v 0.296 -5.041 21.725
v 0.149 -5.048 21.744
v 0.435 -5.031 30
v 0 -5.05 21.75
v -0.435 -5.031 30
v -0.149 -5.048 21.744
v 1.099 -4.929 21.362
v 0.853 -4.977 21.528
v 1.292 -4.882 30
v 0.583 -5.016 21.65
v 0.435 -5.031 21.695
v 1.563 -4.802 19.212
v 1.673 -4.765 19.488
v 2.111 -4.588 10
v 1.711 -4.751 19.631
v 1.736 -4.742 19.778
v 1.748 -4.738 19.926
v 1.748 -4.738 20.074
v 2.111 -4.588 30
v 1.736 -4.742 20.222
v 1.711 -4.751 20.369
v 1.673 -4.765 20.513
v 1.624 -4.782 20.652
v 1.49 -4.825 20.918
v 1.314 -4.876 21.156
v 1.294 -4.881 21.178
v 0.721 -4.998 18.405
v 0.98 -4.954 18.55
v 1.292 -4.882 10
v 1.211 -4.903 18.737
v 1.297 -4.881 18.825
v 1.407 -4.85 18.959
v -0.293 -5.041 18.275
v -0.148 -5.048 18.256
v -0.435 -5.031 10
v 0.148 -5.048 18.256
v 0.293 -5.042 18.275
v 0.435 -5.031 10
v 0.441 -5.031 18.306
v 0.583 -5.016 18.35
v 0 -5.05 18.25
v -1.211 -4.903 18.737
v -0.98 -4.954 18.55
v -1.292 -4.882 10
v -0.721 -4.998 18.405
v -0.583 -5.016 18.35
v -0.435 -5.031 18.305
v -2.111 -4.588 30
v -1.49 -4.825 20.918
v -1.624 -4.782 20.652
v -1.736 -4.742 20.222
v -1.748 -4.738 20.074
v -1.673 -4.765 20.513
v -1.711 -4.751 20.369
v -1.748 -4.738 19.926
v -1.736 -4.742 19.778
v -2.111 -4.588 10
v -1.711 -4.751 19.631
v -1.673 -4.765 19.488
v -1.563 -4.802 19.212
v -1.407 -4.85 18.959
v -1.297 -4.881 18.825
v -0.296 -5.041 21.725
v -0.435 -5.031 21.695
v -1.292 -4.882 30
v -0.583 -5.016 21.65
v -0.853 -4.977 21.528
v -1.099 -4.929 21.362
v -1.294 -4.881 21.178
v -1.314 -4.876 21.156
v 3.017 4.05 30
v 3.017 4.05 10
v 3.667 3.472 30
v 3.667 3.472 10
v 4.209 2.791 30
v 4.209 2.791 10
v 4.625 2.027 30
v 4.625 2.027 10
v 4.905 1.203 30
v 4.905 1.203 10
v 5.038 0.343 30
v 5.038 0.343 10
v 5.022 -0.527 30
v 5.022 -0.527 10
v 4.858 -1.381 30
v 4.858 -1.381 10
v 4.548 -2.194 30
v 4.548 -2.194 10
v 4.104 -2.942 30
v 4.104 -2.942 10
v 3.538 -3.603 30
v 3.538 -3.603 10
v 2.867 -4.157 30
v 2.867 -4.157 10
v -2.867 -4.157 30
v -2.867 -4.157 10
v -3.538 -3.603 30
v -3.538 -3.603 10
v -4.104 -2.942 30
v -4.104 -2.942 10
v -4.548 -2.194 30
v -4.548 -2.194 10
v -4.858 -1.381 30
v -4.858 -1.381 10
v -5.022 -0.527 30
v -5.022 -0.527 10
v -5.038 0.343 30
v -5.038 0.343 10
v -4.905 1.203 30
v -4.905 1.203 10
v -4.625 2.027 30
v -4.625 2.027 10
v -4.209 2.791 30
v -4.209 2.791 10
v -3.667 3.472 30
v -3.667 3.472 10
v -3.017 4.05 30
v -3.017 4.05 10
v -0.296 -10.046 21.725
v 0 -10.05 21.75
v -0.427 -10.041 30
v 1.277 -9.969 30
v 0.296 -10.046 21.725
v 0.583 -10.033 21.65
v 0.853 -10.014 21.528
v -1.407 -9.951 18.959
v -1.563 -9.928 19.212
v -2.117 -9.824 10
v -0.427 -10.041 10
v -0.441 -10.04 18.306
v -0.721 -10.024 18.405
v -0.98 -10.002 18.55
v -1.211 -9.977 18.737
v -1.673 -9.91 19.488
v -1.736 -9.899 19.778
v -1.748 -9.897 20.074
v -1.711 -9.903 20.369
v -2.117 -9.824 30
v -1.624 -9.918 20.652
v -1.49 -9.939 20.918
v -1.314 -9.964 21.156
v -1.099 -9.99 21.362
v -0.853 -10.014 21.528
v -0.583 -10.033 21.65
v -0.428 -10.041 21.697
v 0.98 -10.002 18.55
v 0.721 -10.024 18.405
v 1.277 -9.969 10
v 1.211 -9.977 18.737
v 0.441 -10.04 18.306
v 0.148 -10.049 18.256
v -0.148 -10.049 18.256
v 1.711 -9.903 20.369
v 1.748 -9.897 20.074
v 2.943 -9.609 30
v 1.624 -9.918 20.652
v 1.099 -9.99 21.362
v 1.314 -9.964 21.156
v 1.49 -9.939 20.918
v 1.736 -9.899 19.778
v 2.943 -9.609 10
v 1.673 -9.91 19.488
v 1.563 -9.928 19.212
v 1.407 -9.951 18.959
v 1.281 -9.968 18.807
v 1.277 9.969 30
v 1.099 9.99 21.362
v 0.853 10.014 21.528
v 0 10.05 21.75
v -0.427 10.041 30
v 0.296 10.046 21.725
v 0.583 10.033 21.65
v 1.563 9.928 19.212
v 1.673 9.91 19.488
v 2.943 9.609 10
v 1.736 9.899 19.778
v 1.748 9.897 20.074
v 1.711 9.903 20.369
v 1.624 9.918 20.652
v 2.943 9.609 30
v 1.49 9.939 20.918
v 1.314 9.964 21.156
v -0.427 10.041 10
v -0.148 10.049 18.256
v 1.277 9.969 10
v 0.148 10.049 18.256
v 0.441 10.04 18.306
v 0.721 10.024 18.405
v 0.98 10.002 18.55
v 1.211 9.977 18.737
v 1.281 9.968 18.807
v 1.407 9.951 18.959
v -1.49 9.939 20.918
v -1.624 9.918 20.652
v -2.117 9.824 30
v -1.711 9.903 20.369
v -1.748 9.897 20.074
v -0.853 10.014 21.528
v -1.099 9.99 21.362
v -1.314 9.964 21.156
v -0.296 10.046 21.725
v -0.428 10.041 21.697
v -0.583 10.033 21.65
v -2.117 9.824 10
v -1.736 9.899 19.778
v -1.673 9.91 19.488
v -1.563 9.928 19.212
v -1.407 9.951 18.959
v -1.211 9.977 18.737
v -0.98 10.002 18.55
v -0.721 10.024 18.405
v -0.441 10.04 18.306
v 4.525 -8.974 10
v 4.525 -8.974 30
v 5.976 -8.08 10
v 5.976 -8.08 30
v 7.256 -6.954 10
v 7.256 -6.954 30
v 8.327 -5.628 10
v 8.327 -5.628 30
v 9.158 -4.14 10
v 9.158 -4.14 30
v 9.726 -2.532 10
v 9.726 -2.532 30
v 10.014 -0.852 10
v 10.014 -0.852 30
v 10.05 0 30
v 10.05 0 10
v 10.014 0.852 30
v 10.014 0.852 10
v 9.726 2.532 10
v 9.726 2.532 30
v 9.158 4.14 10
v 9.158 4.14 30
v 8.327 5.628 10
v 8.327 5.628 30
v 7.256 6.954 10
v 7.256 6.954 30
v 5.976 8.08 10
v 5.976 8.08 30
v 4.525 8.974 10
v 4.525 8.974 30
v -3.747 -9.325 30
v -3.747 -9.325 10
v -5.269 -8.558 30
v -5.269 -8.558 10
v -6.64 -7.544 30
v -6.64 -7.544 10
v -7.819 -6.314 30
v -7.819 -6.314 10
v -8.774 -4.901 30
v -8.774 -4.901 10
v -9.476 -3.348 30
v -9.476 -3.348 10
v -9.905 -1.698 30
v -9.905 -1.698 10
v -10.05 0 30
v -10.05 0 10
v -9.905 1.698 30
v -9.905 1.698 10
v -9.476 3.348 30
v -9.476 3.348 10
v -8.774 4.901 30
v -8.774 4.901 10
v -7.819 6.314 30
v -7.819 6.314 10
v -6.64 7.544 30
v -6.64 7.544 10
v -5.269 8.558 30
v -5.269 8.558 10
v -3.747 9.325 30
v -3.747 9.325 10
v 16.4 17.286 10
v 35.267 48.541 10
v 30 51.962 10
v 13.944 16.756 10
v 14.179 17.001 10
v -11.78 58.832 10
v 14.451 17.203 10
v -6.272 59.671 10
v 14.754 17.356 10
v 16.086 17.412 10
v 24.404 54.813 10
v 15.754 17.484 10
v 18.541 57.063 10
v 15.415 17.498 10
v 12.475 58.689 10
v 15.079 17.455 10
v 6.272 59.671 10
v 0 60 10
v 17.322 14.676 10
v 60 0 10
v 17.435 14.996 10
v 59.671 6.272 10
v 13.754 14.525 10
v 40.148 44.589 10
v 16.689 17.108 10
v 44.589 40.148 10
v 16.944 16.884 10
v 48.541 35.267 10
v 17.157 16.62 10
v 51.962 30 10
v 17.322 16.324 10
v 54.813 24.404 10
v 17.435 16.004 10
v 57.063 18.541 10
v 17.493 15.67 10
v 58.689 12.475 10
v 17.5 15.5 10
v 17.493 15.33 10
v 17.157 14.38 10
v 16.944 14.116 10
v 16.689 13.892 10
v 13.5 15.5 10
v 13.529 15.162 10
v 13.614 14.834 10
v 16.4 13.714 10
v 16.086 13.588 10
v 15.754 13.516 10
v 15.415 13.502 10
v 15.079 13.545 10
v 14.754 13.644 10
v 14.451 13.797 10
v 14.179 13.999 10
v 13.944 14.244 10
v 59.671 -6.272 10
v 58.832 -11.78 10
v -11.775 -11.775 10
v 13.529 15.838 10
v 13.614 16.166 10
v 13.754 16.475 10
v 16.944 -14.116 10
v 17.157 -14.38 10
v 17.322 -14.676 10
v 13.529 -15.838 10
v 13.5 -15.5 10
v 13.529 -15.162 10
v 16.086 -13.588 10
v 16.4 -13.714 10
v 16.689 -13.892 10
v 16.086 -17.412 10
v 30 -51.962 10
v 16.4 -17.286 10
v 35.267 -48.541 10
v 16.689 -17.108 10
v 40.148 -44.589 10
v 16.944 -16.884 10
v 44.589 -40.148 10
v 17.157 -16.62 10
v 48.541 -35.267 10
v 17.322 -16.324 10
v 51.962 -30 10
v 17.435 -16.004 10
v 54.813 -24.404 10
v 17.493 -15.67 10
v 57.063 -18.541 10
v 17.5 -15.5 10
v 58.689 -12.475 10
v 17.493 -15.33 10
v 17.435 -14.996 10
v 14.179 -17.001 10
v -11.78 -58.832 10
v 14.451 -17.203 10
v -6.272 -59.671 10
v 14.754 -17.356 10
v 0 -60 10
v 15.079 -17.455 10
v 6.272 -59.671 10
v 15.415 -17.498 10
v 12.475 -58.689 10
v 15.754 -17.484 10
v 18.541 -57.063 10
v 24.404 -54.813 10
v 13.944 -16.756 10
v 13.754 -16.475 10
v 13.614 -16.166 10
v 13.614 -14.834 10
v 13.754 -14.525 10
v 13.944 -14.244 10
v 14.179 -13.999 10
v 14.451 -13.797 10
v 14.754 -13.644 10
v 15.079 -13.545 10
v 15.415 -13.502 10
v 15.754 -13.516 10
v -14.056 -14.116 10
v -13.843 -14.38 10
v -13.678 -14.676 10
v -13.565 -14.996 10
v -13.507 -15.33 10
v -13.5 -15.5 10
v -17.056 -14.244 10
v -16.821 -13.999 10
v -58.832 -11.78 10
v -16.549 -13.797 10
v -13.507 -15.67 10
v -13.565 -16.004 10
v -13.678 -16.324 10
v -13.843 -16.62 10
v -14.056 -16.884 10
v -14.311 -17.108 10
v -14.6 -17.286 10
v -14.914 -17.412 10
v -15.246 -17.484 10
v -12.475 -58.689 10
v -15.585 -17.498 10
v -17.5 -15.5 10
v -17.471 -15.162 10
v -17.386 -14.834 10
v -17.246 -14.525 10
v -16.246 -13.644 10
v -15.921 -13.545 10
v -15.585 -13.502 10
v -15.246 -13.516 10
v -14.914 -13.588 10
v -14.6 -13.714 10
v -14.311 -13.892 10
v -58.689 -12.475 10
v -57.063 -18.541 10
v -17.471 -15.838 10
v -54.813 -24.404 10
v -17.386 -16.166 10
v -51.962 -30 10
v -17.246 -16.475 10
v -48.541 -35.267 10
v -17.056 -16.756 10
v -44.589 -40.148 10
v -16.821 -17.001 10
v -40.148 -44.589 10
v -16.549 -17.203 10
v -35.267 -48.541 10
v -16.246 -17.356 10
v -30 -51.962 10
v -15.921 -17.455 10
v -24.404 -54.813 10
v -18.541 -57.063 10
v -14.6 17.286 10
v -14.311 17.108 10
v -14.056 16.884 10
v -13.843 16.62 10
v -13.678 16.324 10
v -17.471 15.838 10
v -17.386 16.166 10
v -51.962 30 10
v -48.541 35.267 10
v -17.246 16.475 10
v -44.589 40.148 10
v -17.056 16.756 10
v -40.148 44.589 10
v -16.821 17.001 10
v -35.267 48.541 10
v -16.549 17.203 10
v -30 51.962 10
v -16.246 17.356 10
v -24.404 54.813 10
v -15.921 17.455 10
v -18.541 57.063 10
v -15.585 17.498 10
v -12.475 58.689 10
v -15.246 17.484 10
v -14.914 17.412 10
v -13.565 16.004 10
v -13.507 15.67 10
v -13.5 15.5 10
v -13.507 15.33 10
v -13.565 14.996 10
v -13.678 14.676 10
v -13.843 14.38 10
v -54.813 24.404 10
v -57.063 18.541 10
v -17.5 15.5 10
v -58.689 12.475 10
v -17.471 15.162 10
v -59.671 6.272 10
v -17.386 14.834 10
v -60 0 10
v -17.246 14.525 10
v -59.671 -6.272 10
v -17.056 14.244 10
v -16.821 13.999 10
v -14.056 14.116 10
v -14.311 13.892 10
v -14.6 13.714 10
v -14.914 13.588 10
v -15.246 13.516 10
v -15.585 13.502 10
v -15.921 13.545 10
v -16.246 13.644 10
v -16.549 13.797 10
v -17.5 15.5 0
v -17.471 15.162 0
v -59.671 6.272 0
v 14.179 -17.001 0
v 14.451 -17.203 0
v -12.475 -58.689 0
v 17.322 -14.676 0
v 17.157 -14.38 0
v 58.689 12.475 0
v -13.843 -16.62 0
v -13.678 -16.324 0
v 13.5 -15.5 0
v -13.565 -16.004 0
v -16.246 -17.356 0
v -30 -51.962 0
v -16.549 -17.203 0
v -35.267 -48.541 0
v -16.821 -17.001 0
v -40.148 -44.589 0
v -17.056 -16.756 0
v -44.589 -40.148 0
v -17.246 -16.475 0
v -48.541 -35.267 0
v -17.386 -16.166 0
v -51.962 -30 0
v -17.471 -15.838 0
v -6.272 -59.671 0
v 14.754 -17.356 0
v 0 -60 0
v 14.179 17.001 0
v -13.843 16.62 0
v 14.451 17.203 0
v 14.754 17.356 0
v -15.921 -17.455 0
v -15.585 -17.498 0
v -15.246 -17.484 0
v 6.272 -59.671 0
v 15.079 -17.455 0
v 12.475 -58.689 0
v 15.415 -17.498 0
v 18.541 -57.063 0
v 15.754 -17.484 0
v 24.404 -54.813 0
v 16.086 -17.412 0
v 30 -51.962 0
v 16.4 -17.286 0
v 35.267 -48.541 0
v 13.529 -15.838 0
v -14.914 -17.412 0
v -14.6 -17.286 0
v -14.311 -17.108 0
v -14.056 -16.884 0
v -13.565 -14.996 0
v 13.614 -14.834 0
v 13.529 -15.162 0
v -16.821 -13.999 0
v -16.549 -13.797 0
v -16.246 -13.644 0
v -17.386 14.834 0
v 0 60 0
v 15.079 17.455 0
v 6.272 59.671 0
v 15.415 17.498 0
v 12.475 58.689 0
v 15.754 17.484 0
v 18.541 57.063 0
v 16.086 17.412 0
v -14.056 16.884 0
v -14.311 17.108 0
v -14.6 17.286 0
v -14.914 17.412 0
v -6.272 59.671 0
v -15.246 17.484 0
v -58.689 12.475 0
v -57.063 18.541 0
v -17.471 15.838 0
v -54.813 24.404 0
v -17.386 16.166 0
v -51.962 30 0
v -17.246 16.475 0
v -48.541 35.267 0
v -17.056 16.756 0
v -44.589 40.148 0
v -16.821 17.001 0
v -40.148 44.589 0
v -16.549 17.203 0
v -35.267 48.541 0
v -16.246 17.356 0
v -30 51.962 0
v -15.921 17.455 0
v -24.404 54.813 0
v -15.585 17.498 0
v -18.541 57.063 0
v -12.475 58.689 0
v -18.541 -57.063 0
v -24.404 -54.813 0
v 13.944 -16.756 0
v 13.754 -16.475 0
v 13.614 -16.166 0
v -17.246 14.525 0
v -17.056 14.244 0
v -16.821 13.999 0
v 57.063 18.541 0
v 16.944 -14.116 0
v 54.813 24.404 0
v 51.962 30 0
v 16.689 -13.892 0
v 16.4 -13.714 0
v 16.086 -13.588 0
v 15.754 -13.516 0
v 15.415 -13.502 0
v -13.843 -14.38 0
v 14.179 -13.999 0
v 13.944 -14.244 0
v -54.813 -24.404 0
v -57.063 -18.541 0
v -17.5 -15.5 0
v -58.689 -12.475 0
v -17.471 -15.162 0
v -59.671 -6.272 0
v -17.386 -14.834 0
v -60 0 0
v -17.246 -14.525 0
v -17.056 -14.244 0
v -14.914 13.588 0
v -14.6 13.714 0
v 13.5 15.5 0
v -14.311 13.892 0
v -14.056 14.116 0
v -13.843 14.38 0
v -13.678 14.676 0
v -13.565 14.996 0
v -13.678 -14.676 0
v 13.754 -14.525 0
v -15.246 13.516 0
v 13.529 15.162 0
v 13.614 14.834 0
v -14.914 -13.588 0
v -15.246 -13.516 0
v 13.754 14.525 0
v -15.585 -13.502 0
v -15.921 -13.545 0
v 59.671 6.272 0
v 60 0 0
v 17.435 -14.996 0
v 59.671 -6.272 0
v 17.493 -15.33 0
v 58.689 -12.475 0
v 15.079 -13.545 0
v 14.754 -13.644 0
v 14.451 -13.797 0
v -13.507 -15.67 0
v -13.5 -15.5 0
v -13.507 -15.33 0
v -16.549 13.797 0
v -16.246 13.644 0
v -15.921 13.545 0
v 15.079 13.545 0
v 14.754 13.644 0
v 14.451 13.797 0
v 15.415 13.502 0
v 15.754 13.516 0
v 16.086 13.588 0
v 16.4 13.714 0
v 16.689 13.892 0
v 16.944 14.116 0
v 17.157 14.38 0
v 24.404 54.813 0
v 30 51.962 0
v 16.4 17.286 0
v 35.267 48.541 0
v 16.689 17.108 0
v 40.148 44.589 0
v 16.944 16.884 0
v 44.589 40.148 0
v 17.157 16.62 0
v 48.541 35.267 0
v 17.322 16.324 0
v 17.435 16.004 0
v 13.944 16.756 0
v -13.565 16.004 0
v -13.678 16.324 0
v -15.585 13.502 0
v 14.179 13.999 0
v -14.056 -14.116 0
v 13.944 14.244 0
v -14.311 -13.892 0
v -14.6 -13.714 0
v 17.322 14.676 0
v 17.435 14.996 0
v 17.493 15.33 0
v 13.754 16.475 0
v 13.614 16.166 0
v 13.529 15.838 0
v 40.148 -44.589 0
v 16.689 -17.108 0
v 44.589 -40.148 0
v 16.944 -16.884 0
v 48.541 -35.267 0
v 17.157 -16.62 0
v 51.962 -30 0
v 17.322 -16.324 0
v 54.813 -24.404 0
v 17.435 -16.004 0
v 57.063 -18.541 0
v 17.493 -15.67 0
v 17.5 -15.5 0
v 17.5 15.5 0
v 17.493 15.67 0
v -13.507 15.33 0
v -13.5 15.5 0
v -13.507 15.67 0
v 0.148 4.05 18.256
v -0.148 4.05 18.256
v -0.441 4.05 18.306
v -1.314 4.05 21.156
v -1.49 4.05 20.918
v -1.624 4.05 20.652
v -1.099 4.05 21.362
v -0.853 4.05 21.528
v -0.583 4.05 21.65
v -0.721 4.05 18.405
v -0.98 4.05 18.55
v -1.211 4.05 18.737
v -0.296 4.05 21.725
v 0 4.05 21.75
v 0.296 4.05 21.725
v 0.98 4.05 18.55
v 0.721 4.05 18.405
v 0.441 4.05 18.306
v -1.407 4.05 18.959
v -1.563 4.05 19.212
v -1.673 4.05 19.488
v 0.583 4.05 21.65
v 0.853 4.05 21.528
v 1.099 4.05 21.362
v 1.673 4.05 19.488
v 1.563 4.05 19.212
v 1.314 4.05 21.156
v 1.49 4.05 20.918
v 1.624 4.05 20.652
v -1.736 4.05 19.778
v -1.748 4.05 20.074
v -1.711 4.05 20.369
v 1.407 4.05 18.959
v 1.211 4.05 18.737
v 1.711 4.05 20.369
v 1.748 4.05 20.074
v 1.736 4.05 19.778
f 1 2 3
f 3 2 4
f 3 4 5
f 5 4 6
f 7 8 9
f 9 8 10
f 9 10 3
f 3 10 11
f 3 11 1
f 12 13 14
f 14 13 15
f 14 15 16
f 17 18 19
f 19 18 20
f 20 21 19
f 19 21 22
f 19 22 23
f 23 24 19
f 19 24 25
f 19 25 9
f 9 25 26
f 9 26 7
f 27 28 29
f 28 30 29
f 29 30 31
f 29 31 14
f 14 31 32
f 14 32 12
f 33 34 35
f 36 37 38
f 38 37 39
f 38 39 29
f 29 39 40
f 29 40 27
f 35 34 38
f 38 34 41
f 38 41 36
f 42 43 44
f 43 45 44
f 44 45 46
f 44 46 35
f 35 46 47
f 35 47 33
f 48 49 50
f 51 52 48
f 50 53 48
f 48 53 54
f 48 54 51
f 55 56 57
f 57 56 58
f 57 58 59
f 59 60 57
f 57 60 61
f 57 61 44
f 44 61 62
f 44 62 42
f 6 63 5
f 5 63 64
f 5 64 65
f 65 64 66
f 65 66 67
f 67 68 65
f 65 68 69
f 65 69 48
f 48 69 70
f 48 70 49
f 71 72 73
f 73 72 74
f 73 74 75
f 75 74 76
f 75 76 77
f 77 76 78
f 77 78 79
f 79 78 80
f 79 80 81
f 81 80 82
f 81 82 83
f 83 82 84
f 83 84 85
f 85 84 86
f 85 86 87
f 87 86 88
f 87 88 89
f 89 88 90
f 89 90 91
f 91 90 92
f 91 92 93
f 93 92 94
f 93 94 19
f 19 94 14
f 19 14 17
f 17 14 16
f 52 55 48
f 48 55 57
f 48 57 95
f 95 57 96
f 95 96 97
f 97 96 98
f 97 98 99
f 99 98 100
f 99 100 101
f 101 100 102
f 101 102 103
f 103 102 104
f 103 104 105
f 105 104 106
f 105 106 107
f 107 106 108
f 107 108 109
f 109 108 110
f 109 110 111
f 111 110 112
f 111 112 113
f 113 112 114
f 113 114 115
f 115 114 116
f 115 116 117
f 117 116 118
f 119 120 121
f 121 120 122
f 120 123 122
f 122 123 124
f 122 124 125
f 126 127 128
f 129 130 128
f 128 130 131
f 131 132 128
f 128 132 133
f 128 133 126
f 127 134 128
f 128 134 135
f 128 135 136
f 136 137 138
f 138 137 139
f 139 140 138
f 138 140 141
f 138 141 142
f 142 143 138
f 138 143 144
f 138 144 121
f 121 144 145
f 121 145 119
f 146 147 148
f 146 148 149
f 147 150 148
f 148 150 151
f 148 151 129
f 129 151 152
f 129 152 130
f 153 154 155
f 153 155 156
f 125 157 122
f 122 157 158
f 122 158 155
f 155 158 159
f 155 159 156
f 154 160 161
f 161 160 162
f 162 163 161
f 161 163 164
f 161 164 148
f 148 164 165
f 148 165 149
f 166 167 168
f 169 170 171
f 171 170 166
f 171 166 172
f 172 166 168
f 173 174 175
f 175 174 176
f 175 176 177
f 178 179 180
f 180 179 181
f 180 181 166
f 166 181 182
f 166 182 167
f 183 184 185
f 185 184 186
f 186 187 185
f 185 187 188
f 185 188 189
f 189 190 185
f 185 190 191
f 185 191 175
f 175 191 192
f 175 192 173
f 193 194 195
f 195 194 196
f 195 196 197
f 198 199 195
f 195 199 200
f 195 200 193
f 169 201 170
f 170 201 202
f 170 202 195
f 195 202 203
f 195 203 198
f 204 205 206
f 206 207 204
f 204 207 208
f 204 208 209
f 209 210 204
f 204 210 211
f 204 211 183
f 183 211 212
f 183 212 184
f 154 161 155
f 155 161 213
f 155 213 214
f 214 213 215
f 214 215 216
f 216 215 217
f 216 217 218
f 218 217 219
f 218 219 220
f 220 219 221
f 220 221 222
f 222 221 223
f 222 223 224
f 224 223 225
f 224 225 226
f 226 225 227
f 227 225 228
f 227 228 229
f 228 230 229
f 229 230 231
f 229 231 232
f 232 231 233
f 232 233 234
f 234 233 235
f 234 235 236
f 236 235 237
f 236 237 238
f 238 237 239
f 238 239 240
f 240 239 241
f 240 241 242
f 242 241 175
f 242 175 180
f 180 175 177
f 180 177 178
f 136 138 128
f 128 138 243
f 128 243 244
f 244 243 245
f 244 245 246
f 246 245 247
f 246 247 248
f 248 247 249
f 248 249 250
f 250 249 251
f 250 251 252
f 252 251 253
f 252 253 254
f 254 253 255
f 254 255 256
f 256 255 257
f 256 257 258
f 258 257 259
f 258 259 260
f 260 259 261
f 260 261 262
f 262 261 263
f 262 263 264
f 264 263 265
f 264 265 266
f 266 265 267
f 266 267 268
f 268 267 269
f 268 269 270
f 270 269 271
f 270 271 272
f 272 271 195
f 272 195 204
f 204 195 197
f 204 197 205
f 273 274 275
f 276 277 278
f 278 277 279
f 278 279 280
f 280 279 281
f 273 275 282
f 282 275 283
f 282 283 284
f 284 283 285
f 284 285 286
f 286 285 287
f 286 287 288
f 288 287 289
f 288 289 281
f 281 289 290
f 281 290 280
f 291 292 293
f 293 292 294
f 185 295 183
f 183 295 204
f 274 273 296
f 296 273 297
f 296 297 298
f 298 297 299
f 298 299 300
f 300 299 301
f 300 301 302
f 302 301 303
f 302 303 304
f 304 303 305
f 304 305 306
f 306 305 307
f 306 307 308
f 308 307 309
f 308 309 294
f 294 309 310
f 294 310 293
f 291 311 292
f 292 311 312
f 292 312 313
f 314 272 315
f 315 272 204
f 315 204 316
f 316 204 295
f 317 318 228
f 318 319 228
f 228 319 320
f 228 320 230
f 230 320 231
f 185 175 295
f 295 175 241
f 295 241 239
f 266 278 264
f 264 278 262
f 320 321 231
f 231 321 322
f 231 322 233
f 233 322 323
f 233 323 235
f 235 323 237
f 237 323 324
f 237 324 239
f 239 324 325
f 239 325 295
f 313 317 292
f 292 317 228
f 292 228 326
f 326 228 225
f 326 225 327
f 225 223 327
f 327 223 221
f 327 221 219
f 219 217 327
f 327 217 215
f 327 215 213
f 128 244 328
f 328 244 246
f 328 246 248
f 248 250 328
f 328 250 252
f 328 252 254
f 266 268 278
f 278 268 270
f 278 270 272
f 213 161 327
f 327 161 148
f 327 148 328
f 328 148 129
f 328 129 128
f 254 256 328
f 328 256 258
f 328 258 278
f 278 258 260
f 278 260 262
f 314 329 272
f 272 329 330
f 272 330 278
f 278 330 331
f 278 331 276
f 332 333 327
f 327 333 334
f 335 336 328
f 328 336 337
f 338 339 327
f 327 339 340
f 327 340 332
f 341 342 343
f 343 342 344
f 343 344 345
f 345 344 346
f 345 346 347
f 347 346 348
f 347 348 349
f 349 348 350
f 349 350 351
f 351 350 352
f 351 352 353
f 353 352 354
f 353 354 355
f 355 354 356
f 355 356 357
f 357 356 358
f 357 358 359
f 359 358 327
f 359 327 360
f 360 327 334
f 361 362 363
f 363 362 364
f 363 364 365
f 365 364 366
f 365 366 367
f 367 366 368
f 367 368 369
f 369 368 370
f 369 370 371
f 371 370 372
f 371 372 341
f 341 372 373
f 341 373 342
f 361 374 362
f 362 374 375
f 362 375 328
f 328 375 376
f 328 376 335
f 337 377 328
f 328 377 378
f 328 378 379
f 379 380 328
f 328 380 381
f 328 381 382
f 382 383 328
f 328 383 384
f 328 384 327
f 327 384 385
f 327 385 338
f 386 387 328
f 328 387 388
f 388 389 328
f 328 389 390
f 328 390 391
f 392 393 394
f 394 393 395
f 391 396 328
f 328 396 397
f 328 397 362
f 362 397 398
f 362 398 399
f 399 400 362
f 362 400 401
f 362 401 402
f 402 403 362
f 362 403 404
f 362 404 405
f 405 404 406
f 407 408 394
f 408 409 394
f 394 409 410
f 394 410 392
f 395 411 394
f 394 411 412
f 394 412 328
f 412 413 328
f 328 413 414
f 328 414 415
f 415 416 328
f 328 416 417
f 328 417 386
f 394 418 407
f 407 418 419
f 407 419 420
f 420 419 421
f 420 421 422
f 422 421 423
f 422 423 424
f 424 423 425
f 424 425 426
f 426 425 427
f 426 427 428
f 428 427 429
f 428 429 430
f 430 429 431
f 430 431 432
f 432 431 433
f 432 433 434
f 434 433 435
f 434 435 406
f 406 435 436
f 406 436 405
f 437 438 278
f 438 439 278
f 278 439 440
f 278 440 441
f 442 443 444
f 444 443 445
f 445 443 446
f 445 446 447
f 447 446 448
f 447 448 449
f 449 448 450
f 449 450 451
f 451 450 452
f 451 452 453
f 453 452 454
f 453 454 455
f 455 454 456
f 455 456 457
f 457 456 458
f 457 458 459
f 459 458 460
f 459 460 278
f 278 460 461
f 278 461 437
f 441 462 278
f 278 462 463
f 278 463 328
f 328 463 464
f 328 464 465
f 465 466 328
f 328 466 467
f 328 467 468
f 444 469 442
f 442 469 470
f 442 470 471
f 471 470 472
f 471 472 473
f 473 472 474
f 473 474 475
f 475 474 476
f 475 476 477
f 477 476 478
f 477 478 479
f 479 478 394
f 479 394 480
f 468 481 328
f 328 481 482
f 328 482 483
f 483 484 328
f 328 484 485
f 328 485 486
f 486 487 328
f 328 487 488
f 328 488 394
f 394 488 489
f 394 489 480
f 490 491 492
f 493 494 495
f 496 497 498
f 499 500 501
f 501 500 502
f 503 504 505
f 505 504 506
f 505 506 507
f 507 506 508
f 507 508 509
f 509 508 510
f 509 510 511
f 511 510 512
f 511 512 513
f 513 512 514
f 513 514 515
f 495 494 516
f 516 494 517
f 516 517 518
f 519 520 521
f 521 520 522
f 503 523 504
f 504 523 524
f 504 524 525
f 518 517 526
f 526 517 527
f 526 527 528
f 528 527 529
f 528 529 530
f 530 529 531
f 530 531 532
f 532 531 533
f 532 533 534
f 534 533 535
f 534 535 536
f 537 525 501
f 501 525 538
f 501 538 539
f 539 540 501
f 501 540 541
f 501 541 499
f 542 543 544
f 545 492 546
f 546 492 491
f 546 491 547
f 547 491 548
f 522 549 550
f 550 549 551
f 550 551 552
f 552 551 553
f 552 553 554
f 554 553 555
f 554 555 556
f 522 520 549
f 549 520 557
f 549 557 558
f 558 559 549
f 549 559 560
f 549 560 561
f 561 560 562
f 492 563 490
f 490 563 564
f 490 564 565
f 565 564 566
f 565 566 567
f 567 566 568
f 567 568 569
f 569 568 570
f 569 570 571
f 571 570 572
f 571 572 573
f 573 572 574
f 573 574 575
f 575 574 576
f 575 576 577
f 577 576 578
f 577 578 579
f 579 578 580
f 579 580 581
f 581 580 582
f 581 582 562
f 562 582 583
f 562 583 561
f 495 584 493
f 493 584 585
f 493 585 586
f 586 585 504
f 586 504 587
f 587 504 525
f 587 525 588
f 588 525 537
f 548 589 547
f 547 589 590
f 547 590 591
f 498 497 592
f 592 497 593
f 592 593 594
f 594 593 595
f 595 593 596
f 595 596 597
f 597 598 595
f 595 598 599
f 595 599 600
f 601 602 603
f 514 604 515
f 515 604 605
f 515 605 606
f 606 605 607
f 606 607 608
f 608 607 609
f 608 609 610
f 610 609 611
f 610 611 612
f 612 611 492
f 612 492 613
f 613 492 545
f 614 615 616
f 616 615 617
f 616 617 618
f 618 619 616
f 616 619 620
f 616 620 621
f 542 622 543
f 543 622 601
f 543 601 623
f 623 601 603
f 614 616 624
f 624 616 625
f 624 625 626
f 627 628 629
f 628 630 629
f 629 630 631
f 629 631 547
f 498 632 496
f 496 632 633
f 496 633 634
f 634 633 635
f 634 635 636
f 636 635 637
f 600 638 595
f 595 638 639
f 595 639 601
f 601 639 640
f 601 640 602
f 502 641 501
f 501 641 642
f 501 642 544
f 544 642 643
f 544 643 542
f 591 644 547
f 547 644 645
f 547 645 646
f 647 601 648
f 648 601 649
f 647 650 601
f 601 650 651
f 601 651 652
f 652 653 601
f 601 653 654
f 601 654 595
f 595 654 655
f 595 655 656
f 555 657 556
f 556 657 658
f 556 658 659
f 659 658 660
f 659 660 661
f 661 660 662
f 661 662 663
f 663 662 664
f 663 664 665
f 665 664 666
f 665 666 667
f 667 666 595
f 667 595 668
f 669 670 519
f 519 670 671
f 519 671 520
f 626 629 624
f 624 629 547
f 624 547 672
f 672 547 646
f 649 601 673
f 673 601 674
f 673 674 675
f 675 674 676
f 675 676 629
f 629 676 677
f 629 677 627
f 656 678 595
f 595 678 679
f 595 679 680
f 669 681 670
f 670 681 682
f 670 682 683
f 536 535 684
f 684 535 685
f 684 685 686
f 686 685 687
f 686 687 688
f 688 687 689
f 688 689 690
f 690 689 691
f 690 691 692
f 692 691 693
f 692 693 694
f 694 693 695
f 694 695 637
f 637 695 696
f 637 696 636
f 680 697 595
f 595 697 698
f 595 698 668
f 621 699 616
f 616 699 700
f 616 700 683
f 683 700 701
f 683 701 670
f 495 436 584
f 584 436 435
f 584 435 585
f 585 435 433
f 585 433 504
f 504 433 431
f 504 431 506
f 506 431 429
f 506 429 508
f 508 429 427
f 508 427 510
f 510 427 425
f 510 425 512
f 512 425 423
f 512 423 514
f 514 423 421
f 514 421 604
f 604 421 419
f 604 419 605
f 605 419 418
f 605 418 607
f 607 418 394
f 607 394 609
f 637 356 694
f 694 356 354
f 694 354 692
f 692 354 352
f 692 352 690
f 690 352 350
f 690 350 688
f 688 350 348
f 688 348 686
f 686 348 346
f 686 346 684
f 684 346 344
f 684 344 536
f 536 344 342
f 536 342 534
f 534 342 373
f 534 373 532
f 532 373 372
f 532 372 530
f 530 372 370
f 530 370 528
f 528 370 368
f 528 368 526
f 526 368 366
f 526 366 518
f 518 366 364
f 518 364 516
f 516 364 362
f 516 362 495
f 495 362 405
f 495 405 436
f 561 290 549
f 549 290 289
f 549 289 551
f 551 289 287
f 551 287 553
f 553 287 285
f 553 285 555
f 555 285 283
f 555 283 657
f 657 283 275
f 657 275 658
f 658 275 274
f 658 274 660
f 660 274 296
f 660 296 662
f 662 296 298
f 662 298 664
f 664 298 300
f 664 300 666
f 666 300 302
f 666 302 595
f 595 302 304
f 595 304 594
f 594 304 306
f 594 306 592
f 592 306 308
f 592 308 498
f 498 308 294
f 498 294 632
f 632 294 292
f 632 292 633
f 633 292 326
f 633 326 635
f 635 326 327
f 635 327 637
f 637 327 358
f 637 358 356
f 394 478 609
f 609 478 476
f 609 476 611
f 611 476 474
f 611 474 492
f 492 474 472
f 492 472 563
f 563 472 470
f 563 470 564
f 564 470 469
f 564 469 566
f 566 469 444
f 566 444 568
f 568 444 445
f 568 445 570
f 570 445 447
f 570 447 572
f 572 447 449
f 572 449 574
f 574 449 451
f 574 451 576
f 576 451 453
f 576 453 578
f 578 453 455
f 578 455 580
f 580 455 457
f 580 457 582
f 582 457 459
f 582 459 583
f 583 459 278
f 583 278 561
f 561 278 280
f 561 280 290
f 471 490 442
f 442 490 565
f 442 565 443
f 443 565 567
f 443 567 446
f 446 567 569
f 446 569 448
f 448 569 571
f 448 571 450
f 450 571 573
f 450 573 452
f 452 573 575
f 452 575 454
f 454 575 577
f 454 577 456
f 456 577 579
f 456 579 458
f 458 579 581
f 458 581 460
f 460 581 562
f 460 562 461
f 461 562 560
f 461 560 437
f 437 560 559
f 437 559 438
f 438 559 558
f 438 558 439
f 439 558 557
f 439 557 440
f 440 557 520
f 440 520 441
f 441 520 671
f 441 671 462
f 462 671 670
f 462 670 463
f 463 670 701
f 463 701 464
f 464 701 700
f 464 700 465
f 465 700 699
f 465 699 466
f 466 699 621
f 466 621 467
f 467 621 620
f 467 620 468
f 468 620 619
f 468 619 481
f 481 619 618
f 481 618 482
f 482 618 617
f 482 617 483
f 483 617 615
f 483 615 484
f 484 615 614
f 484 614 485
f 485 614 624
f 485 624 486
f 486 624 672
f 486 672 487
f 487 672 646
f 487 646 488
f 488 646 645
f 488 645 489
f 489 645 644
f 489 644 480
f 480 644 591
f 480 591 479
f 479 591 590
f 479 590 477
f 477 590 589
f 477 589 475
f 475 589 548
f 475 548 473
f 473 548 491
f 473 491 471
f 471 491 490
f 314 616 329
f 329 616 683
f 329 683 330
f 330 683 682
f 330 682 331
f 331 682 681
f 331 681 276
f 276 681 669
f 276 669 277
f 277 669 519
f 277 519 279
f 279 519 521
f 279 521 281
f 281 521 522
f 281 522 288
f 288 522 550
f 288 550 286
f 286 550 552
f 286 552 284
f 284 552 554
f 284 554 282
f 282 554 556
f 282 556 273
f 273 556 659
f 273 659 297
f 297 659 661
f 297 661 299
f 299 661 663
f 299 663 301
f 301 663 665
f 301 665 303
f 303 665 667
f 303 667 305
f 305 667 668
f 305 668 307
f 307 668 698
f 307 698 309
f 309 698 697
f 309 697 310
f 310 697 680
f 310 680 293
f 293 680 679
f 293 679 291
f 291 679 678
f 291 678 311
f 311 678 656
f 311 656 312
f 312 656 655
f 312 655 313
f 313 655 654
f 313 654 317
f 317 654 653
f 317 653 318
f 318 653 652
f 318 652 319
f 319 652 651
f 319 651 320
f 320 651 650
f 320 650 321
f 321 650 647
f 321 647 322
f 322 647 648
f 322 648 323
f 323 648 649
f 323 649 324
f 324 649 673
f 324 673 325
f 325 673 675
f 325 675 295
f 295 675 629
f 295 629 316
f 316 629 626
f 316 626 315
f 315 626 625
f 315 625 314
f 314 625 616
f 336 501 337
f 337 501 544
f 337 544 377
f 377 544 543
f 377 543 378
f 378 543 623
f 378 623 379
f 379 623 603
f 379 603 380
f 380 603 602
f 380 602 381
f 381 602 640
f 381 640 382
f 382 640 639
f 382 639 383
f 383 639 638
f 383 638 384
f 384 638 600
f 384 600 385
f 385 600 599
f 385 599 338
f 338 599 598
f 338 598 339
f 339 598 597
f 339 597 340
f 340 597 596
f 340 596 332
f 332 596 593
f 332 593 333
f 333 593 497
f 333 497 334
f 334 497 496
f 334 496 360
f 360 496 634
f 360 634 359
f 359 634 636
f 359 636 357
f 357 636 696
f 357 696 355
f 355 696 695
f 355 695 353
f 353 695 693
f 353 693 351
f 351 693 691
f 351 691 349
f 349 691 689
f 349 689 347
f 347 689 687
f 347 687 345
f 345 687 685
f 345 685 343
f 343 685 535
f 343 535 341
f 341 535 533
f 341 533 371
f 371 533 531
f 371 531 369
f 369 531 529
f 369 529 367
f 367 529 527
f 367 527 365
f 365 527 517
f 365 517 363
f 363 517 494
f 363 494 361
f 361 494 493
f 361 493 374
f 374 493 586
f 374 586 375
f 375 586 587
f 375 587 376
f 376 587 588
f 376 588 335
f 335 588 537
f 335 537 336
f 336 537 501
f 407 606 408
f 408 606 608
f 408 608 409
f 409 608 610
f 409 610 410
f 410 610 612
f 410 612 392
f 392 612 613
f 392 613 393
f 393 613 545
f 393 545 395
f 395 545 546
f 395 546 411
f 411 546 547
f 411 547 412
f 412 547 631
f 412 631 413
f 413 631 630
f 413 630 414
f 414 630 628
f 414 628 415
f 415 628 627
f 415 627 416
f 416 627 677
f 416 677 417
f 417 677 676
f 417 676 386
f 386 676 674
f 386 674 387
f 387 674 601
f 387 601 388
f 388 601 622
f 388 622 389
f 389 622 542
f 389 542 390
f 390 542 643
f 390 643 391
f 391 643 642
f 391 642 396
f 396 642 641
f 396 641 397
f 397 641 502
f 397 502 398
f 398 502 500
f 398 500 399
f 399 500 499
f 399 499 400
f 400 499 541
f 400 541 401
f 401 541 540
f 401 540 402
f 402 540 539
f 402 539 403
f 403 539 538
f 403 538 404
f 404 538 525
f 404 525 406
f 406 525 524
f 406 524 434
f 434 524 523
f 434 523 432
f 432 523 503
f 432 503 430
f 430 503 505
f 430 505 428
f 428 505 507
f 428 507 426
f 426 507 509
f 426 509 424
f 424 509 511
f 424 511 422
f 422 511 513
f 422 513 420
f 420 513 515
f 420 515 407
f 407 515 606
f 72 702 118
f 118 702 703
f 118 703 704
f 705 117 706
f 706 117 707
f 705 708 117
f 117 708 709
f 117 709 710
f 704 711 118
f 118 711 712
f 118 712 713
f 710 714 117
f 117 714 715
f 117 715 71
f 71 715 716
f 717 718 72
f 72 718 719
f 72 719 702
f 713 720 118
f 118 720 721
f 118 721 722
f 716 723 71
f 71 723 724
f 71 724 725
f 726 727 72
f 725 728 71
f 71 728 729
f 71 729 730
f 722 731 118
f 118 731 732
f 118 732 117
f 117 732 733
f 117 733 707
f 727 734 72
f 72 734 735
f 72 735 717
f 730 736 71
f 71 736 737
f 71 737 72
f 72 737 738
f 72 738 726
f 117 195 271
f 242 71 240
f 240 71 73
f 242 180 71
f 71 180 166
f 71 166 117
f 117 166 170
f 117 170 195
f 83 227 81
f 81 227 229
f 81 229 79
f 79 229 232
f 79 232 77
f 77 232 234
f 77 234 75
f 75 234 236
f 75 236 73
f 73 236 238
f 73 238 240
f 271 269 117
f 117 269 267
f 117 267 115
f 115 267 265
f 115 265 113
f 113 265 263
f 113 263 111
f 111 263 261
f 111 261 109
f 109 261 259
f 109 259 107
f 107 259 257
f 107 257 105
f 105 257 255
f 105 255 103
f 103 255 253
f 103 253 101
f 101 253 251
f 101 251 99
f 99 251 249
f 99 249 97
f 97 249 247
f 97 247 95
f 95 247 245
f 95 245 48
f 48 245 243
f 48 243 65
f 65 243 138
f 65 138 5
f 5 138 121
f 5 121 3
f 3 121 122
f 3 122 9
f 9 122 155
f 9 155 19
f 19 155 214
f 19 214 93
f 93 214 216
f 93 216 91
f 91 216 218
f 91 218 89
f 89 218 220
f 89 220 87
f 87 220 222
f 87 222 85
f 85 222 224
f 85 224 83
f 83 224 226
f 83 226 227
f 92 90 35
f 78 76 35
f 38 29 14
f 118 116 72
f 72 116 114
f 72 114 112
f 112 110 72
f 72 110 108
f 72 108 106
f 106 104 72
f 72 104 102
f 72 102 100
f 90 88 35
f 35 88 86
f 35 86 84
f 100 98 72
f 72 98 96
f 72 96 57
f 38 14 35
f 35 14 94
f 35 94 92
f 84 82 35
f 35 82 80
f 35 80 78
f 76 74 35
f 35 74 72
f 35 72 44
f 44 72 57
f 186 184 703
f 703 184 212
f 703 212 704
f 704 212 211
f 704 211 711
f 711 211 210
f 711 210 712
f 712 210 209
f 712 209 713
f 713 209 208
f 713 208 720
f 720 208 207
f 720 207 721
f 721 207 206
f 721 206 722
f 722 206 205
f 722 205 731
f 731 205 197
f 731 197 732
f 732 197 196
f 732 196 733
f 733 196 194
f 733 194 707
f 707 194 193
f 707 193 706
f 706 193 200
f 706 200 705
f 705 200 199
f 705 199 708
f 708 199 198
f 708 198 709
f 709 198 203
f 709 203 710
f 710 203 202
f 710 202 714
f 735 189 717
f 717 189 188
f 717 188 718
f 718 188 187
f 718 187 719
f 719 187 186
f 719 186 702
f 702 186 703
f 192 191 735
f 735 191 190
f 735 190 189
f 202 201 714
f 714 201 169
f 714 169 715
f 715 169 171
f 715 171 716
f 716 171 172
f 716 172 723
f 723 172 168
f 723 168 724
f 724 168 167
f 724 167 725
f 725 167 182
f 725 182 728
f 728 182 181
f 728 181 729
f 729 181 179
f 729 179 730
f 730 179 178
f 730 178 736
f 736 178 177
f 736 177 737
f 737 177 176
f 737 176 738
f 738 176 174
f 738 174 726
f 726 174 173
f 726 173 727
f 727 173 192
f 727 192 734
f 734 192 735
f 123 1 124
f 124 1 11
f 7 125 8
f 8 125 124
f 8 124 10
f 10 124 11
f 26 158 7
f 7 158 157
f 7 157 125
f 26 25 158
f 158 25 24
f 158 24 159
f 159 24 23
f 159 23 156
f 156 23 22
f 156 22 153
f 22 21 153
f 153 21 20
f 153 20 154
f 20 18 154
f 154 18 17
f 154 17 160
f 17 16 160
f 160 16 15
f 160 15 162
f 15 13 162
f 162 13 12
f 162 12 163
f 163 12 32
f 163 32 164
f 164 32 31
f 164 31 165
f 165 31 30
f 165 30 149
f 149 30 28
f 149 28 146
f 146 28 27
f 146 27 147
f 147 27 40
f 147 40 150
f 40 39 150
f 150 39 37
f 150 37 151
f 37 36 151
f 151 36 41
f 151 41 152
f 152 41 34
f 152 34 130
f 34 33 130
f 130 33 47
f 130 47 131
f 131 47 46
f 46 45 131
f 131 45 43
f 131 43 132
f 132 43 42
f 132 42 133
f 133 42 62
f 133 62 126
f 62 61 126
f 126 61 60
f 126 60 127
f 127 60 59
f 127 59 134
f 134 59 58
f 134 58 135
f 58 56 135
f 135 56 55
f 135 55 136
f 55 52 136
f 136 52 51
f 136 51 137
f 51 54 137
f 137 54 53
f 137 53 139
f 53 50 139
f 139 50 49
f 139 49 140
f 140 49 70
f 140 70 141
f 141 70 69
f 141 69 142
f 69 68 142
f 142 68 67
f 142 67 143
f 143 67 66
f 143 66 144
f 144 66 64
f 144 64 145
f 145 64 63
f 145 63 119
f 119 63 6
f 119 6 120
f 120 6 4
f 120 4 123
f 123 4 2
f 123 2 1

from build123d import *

# Parameters (mm, degrees)
SKETCH1_R               = 60
SKETCH1_R_2             = 2
BOSS_EXTRUDE1_DEPTH     = 10
SKETCH2_R               = 10.05
BOSS_EXTRUDE2_DEPTH     = 20
CUT_EXTRUDE1_DEPTH      = 20
CUT_EXTRUDE1_DEPTH_BACK = 20
SKETCH3_R               = 1.75


with BuildPart() as part:
    # Sketch1 → Boss-Extrude1 (new body)
    with BuildSketch(Plane.XY):
        Circle(SKETCH1_R)
        with Locations((-15.5, 15.5)):
            Circle(SKETCH1_R_2, mode=Mode.SUBTRACT)
        with Locations((15.5, 15.5)):
            Circle(SKETCH1_R_2, mode=Mode.SUBTRACT)
        with Locations((15.5, -15.5)):
            Circle(SKETCH1_R_2, mode=Mode.SUBTRACT)
        with Locations((-15.5, -15.5)):
            Circle(SKETCH1_R_2, mode=Mode.SUBTRACT)
    extrude(amount=BOSS_EXTRUDE1_DEPTH)

    # Sketch2 → Boss-Extrude2 (add)
    with BuildSketch(Plane.XY.offset(10)):
        Circle(SKETCH2_R)
        with BuildLine():
            ThreePointArc((3.016620626, 4.05), (0, -5.05), (-3.016620626, 4.05))
            Line((-3.016620626, 4.05), (3.016620626, 4.05))
        make_face(mode=Mode.SUBTRACT)
    extrude(amount=BOSS_EXTRUDE2_DEPTH)

    # Sketch3 → Cut-Extrude1 (cut, two sides: drawn at the far end of the back side and taken through both)
    with BuildSketch(Plane(origin=(0, 4.05, 0), x_dir=(-1, 0, 0), z_dir=(0, -1, 0)).offset(-CUT_EXTRUDE1_DEPTH_BACK)):
        with Locations((0, -20)):
            Circle(SKETCH3_R)
    extrude(amount=CUT_EXTRUDE1_DEPTH + CUT_EXTRUDE1_DEPTH_BACK, mode=Mode.SUBTRACT)


solid = part.part
